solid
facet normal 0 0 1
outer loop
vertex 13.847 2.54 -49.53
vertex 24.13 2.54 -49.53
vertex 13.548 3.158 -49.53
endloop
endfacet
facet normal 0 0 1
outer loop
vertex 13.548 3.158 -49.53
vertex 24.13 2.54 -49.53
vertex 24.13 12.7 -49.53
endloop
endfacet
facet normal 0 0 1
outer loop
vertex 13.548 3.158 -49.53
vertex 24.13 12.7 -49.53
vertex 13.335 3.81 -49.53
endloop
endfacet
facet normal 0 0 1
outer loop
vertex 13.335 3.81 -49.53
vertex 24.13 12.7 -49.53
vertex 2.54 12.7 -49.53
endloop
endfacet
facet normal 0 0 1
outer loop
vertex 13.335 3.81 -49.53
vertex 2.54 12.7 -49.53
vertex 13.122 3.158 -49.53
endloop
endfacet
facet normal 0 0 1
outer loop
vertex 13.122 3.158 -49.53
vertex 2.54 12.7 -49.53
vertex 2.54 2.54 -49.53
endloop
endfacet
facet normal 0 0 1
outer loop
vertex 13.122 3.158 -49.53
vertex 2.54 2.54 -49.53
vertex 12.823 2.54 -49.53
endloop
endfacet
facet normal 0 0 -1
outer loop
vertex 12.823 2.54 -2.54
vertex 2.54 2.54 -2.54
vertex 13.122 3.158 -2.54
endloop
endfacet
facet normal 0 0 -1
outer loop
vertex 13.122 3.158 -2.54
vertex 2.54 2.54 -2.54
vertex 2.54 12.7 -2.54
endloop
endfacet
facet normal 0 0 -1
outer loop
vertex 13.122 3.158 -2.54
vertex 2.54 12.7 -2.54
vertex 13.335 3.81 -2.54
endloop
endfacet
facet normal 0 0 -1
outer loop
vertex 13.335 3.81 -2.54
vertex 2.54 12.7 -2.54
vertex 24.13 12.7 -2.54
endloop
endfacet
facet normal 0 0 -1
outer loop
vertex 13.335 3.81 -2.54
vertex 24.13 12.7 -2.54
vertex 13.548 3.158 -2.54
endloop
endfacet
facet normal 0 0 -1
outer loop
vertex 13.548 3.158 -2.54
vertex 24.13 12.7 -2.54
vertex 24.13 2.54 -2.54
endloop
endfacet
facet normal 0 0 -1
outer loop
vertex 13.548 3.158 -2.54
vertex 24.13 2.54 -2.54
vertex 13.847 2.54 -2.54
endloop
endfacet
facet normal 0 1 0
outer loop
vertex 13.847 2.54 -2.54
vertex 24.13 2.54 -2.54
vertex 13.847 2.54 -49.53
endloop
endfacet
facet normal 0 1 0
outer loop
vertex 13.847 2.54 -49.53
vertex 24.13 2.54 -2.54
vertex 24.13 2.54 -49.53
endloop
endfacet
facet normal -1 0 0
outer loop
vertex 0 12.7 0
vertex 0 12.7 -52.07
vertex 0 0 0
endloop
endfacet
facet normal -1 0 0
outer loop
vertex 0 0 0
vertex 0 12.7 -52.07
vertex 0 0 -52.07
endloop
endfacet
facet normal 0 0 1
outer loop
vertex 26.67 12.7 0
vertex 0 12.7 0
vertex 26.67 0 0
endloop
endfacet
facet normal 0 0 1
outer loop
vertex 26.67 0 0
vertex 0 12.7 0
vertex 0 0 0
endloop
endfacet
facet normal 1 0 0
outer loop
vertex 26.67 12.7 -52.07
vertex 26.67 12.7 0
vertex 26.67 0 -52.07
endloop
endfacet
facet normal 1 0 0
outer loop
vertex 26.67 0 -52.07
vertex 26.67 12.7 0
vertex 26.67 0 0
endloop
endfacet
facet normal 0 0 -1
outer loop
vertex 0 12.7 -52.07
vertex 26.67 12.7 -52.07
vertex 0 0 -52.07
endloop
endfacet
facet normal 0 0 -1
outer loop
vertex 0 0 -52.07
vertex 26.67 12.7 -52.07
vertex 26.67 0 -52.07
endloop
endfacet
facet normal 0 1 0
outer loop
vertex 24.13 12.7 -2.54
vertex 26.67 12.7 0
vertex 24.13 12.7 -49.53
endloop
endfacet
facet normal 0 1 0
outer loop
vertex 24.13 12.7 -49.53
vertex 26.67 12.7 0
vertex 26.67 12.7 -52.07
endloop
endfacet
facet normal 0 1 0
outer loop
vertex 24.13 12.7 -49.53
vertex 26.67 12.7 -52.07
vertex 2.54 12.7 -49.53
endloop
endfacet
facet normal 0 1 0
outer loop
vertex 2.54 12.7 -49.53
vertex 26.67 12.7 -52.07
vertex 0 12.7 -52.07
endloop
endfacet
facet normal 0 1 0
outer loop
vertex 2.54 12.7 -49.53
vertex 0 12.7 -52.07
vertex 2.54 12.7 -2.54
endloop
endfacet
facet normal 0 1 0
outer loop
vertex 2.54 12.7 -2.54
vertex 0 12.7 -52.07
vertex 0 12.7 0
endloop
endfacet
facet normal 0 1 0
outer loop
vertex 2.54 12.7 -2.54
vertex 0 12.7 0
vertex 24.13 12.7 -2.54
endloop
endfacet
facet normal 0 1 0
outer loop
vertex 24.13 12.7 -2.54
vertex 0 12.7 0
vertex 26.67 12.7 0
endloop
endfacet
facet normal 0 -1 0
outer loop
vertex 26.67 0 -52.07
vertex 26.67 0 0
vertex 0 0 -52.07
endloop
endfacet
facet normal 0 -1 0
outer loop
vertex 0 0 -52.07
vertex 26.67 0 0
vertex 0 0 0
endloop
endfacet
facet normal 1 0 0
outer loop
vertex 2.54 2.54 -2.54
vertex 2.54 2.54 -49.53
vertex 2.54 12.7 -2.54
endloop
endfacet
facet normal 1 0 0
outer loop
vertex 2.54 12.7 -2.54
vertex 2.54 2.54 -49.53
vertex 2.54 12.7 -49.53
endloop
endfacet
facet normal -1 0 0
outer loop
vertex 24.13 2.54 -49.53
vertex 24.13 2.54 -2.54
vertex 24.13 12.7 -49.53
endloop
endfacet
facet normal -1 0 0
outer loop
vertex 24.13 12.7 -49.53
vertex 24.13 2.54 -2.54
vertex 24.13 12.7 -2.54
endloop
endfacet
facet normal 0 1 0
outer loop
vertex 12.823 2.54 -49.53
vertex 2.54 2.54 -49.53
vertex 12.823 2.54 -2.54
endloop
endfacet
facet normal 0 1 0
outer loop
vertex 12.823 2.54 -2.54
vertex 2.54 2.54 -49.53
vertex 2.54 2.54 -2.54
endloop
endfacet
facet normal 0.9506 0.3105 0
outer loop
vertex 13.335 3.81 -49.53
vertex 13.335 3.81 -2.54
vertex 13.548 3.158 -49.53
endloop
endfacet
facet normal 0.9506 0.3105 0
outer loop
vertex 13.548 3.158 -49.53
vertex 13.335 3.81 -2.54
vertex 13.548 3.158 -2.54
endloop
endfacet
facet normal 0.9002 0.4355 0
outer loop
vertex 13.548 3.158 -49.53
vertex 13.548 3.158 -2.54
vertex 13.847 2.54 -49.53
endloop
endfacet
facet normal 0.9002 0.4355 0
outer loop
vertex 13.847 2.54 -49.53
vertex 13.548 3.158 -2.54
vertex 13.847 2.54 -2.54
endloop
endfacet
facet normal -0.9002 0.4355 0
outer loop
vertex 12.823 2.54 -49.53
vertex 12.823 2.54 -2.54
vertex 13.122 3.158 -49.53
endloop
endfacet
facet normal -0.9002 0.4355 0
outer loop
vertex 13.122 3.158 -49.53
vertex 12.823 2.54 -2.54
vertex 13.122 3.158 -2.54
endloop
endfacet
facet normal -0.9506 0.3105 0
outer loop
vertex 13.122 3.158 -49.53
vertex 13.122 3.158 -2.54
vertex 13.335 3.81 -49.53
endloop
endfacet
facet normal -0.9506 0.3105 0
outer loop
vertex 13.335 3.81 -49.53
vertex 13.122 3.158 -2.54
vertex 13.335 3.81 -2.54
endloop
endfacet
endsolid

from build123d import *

# Parameters (mm, degrees)
SKETCH1_W           = 26.67
SKETCH1_H           = 52.07
BOSS_EXTRUDE1_DEPTH = 12.7
SKETCH2_W           = 21.59
SKETCH2_H           = 46.99
CUT_EXTRUDE1_DEPTH  = 10.16
BOSS_EXTRUDE2_REACH = 54.07


with BuildPart() as part:
    # Sketch1 → Boss-Extrude1 (new body)
    with BuildSketch(Plane(origin=(0, 0, 0), x_dir=(1, 0, 0), z_dir=(0, 1, 0))):
        with Locations((13.335, 26.035)):
            Rectangle(SKETCH1_W, SKETCH1_H)
    extrude(amount=BOSS_EXTRUDE1_DEPTH)

    # Sketch2 → Cut-Extrude1 (cut)
    with BuildSketch(Plane(origin=(0, 12.7, 0), x_dir=(1, 0, 0), z_dir=(0, 1, 0))):
        with Locations((13.335, 26.035)):
            Rectangle(SKETCH2_W, SKETCH2_H)
    extrude(amount=-CUT_EXTRUDE1_DEPTH, mode=Mode.SUBTRACT)

    # Sketch4 → Boss-Extrude2 (add, up to next)
    with BuildSketch(Plane.XY, mode=Mode.PRIVATE) as boss_extrude2_sk1:
        with BuildLine():
            Line((8.89, 0), (17.78, 0))
            ThreePointArc((17.78, 0), (14.953468796, 1.200296929), (13.335, 3.81))
            ThreePointArc((13.335, 3.81), (11.716531204, 1.200296929), (8.89, 0))
        make_face()
    boss_extrude2_tool1 = extrude(boss_extrude2_sk1.sketch, amount=-BOSS_EXTRUDE2_REACH, mode=Mode.PRIVATE) - part.part
    add(boss_extrude2_tool1.solids().sort_by_distance((13.335, 0.99851, 0))[0])


solid = part.part
